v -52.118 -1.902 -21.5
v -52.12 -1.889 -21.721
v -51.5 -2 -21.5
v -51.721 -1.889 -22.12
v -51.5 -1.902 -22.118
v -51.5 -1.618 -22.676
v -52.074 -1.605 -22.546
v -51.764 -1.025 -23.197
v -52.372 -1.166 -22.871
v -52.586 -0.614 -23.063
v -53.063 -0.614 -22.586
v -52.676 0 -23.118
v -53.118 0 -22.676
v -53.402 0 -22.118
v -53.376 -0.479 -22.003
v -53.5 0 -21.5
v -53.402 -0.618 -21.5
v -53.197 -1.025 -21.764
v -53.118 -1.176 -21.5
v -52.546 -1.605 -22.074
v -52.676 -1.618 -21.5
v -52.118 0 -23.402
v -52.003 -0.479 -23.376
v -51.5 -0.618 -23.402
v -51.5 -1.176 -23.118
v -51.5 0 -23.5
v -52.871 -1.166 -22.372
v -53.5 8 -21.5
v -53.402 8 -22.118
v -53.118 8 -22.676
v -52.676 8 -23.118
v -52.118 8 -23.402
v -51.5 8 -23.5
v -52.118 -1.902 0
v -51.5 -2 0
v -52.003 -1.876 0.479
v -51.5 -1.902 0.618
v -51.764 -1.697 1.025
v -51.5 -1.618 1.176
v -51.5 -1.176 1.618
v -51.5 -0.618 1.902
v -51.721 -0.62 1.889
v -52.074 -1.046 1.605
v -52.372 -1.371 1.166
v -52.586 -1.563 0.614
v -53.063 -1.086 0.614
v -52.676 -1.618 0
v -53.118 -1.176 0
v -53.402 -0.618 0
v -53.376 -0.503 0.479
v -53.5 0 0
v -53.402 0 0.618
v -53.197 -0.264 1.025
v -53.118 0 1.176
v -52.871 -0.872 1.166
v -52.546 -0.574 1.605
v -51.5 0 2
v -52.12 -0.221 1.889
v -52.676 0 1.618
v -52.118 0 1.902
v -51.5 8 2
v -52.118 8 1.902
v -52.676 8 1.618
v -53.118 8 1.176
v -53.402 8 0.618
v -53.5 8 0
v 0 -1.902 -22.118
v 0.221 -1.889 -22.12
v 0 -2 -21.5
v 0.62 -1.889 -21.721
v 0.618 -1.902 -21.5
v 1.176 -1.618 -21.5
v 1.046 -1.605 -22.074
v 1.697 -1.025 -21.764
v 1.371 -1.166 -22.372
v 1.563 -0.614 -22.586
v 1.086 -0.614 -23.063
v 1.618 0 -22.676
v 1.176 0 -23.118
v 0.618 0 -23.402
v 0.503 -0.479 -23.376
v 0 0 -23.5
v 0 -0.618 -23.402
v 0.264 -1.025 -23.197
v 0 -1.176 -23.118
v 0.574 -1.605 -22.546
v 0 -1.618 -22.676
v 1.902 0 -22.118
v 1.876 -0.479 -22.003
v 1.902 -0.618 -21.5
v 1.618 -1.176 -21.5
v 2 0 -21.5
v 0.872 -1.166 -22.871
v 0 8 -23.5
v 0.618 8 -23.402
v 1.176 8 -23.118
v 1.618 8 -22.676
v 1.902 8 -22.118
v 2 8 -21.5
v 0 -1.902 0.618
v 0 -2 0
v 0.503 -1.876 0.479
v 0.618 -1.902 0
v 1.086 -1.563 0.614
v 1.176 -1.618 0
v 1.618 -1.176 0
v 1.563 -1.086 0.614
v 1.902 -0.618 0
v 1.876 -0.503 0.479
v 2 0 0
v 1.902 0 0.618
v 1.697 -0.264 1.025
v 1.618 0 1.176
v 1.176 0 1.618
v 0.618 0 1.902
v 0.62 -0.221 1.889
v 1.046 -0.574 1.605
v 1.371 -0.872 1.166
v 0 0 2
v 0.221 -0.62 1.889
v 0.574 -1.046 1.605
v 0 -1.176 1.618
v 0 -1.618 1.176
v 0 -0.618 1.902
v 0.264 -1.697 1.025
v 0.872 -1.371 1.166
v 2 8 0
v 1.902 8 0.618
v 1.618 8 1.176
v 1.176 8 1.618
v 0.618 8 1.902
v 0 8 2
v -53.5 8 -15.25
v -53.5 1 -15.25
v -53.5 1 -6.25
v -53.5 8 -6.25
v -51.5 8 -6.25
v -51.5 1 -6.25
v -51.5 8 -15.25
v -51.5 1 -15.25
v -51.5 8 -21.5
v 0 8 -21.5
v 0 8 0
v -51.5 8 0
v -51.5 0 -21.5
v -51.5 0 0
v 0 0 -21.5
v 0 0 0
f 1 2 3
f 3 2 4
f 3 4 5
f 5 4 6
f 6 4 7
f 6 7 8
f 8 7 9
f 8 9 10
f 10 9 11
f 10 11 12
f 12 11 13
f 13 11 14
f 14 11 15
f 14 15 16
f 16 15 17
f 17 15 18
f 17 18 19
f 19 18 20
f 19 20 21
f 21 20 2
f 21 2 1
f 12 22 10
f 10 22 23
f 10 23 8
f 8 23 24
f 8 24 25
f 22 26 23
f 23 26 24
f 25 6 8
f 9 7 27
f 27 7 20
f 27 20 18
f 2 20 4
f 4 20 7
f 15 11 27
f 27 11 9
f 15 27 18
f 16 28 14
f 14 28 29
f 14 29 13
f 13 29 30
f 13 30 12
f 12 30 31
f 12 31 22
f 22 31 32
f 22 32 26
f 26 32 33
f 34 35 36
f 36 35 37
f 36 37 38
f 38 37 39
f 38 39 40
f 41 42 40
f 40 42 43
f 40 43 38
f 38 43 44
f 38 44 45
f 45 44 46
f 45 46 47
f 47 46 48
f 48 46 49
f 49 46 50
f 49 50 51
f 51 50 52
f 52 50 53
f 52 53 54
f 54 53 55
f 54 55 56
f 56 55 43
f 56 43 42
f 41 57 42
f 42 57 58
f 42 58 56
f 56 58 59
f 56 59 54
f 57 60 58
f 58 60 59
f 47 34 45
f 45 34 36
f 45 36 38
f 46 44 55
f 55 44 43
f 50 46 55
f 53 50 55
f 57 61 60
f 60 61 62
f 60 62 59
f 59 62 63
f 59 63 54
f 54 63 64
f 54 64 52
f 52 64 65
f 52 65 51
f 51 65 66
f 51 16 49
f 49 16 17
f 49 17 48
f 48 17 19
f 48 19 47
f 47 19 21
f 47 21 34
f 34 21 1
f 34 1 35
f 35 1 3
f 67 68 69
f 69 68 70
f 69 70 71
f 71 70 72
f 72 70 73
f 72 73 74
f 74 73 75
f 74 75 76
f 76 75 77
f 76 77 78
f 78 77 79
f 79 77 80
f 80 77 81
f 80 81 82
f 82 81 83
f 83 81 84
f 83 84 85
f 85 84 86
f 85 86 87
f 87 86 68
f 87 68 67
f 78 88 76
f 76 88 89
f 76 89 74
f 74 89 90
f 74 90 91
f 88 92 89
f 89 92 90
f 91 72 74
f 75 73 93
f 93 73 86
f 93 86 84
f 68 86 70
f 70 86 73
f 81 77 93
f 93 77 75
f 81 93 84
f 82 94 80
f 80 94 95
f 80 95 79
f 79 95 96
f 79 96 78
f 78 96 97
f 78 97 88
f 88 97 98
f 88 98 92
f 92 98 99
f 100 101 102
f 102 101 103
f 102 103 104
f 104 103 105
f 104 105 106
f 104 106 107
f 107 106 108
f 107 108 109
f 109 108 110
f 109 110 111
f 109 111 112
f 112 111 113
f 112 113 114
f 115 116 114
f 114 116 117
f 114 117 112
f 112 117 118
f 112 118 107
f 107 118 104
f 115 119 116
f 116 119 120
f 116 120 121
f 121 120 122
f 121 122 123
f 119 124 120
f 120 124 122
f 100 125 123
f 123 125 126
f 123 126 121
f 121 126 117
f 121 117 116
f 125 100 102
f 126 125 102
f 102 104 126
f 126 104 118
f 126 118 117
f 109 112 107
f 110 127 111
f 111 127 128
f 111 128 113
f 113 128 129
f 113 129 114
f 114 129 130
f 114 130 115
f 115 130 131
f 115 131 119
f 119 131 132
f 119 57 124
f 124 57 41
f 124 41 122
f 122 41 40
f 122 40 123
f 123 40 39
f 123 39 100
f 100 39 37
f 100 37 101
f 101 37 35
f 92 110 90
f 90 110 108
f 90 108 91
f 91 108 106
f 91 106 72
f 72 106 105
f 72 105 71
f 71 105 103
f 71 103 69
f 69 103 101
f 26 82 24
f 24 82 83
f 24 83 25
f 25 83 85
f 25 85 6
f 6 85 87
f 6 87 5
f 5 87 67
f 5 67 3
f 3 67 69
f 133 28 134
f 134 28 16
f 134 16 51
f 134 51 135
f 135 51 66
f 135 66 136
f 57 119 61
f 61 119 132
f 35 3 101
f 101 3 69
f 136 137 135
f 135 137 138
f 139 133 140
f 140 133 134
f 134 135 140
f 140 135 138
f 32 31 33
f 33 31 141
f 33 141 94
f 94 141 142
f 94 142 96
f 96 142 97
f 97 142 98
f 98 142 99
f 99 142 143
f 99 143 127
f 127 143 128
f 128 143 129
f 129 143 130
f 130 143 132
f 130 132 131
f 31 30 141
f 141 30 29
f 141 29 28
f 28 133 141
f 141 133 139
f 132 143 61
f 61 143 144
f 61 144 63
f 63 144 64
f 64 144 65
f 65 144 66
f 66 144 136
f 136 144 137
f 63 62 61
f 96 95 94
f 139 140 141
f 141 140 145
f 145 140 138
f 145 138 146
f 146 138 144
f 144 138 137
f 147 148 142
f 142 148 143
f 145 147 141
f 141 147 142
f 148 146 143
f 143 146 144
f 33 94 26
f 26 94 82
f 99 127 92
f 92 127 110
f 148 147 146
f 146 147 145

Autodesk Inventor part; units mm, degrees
ref_plane "YZ Plane" through (0, 0, 0) normal (1, 0, 0) x (0, 1, 0)
ref_plane "XZ Plane" through (0, 0, 0) normal (0, 1, 0) x (-1, 0, 0)
ref_plane "XY Plane" through (0, 0, 0) normal (0, 0, 1) x (1, 0, 0)
sketch "Sketch1" plane through (0, 0, 0) normal (0, 1, 0) x (-1, 0, 0)
  line L0 (0, 0) -> (51.5, 0)
  line L1 (51.5, 0) -> (51.5, -21.5)
  line L2 (51.5, -21.5) -> (0, -21.5)
  line L3 (0, -21.5) -> (0, 0)
  line L4 (53.5, 2) -> (-2, 2)
  line L5 (-2, 2) -> (-2, -23.5)
  line L6 (-2, -23.5) -> (53.5, -23.5)
  line L7 (53.5, -23.5) -> (53.5, 2)
  point P0 (49.5, -10.75)
  dimension "d0" = 51.5
  dimension "d1" = 21.5
  dimension "d2" = 2
  dimension "d3" = 2
  dimension "d4" = 2
  dimension "d5" = 2
extrude "Extrusion2" add sketch "Sketch1" against normal blind 2 contours L0 L1 L2 L3 | L7 L6 L5 L4
extrude "Extrusion3" add sketch "Sketch1" along normal blind 8
sketch "Sketch2" plane through (0, 8, 0) normal (0, 1, 0) x (1, 0, 0)
  line L0 (-51.5, 6.25) -> (-51.5, 15.25) construction
  line L1 (-51.5, 0) -> (-51.5, 21.5) projected
  line L2 (-51.5, 6.25) -> (-53.5, 6.25)
  line L3 (-53.5, -2) -> (-53.5, 23.5) projected
  line L4 (-51.5, 15.25) -> (-53.5, 15.25)
  point P0 (0, 0)
  point P1 (-51.5, 10.75)
  dimension "d20" = 9
extrude "Extrusion4" cut sketch "Sketch2" against normal blind 7
fillet "Fillet1" radius 2 8 edges at (2, 3, 2) (2, 3, -23.5) (-53.5, 3, 2) (-53.5, 3, -23.5) (-53.5, -2, -10.75) (-25.75, -2, -23.5) (2, -2, -10.75) (-25.75, -2, 2)
equation "\"d2\" = d4"
equation "\"d3\" = d4"
equation "\"d5\" = d4"
properties part number "case pico"
